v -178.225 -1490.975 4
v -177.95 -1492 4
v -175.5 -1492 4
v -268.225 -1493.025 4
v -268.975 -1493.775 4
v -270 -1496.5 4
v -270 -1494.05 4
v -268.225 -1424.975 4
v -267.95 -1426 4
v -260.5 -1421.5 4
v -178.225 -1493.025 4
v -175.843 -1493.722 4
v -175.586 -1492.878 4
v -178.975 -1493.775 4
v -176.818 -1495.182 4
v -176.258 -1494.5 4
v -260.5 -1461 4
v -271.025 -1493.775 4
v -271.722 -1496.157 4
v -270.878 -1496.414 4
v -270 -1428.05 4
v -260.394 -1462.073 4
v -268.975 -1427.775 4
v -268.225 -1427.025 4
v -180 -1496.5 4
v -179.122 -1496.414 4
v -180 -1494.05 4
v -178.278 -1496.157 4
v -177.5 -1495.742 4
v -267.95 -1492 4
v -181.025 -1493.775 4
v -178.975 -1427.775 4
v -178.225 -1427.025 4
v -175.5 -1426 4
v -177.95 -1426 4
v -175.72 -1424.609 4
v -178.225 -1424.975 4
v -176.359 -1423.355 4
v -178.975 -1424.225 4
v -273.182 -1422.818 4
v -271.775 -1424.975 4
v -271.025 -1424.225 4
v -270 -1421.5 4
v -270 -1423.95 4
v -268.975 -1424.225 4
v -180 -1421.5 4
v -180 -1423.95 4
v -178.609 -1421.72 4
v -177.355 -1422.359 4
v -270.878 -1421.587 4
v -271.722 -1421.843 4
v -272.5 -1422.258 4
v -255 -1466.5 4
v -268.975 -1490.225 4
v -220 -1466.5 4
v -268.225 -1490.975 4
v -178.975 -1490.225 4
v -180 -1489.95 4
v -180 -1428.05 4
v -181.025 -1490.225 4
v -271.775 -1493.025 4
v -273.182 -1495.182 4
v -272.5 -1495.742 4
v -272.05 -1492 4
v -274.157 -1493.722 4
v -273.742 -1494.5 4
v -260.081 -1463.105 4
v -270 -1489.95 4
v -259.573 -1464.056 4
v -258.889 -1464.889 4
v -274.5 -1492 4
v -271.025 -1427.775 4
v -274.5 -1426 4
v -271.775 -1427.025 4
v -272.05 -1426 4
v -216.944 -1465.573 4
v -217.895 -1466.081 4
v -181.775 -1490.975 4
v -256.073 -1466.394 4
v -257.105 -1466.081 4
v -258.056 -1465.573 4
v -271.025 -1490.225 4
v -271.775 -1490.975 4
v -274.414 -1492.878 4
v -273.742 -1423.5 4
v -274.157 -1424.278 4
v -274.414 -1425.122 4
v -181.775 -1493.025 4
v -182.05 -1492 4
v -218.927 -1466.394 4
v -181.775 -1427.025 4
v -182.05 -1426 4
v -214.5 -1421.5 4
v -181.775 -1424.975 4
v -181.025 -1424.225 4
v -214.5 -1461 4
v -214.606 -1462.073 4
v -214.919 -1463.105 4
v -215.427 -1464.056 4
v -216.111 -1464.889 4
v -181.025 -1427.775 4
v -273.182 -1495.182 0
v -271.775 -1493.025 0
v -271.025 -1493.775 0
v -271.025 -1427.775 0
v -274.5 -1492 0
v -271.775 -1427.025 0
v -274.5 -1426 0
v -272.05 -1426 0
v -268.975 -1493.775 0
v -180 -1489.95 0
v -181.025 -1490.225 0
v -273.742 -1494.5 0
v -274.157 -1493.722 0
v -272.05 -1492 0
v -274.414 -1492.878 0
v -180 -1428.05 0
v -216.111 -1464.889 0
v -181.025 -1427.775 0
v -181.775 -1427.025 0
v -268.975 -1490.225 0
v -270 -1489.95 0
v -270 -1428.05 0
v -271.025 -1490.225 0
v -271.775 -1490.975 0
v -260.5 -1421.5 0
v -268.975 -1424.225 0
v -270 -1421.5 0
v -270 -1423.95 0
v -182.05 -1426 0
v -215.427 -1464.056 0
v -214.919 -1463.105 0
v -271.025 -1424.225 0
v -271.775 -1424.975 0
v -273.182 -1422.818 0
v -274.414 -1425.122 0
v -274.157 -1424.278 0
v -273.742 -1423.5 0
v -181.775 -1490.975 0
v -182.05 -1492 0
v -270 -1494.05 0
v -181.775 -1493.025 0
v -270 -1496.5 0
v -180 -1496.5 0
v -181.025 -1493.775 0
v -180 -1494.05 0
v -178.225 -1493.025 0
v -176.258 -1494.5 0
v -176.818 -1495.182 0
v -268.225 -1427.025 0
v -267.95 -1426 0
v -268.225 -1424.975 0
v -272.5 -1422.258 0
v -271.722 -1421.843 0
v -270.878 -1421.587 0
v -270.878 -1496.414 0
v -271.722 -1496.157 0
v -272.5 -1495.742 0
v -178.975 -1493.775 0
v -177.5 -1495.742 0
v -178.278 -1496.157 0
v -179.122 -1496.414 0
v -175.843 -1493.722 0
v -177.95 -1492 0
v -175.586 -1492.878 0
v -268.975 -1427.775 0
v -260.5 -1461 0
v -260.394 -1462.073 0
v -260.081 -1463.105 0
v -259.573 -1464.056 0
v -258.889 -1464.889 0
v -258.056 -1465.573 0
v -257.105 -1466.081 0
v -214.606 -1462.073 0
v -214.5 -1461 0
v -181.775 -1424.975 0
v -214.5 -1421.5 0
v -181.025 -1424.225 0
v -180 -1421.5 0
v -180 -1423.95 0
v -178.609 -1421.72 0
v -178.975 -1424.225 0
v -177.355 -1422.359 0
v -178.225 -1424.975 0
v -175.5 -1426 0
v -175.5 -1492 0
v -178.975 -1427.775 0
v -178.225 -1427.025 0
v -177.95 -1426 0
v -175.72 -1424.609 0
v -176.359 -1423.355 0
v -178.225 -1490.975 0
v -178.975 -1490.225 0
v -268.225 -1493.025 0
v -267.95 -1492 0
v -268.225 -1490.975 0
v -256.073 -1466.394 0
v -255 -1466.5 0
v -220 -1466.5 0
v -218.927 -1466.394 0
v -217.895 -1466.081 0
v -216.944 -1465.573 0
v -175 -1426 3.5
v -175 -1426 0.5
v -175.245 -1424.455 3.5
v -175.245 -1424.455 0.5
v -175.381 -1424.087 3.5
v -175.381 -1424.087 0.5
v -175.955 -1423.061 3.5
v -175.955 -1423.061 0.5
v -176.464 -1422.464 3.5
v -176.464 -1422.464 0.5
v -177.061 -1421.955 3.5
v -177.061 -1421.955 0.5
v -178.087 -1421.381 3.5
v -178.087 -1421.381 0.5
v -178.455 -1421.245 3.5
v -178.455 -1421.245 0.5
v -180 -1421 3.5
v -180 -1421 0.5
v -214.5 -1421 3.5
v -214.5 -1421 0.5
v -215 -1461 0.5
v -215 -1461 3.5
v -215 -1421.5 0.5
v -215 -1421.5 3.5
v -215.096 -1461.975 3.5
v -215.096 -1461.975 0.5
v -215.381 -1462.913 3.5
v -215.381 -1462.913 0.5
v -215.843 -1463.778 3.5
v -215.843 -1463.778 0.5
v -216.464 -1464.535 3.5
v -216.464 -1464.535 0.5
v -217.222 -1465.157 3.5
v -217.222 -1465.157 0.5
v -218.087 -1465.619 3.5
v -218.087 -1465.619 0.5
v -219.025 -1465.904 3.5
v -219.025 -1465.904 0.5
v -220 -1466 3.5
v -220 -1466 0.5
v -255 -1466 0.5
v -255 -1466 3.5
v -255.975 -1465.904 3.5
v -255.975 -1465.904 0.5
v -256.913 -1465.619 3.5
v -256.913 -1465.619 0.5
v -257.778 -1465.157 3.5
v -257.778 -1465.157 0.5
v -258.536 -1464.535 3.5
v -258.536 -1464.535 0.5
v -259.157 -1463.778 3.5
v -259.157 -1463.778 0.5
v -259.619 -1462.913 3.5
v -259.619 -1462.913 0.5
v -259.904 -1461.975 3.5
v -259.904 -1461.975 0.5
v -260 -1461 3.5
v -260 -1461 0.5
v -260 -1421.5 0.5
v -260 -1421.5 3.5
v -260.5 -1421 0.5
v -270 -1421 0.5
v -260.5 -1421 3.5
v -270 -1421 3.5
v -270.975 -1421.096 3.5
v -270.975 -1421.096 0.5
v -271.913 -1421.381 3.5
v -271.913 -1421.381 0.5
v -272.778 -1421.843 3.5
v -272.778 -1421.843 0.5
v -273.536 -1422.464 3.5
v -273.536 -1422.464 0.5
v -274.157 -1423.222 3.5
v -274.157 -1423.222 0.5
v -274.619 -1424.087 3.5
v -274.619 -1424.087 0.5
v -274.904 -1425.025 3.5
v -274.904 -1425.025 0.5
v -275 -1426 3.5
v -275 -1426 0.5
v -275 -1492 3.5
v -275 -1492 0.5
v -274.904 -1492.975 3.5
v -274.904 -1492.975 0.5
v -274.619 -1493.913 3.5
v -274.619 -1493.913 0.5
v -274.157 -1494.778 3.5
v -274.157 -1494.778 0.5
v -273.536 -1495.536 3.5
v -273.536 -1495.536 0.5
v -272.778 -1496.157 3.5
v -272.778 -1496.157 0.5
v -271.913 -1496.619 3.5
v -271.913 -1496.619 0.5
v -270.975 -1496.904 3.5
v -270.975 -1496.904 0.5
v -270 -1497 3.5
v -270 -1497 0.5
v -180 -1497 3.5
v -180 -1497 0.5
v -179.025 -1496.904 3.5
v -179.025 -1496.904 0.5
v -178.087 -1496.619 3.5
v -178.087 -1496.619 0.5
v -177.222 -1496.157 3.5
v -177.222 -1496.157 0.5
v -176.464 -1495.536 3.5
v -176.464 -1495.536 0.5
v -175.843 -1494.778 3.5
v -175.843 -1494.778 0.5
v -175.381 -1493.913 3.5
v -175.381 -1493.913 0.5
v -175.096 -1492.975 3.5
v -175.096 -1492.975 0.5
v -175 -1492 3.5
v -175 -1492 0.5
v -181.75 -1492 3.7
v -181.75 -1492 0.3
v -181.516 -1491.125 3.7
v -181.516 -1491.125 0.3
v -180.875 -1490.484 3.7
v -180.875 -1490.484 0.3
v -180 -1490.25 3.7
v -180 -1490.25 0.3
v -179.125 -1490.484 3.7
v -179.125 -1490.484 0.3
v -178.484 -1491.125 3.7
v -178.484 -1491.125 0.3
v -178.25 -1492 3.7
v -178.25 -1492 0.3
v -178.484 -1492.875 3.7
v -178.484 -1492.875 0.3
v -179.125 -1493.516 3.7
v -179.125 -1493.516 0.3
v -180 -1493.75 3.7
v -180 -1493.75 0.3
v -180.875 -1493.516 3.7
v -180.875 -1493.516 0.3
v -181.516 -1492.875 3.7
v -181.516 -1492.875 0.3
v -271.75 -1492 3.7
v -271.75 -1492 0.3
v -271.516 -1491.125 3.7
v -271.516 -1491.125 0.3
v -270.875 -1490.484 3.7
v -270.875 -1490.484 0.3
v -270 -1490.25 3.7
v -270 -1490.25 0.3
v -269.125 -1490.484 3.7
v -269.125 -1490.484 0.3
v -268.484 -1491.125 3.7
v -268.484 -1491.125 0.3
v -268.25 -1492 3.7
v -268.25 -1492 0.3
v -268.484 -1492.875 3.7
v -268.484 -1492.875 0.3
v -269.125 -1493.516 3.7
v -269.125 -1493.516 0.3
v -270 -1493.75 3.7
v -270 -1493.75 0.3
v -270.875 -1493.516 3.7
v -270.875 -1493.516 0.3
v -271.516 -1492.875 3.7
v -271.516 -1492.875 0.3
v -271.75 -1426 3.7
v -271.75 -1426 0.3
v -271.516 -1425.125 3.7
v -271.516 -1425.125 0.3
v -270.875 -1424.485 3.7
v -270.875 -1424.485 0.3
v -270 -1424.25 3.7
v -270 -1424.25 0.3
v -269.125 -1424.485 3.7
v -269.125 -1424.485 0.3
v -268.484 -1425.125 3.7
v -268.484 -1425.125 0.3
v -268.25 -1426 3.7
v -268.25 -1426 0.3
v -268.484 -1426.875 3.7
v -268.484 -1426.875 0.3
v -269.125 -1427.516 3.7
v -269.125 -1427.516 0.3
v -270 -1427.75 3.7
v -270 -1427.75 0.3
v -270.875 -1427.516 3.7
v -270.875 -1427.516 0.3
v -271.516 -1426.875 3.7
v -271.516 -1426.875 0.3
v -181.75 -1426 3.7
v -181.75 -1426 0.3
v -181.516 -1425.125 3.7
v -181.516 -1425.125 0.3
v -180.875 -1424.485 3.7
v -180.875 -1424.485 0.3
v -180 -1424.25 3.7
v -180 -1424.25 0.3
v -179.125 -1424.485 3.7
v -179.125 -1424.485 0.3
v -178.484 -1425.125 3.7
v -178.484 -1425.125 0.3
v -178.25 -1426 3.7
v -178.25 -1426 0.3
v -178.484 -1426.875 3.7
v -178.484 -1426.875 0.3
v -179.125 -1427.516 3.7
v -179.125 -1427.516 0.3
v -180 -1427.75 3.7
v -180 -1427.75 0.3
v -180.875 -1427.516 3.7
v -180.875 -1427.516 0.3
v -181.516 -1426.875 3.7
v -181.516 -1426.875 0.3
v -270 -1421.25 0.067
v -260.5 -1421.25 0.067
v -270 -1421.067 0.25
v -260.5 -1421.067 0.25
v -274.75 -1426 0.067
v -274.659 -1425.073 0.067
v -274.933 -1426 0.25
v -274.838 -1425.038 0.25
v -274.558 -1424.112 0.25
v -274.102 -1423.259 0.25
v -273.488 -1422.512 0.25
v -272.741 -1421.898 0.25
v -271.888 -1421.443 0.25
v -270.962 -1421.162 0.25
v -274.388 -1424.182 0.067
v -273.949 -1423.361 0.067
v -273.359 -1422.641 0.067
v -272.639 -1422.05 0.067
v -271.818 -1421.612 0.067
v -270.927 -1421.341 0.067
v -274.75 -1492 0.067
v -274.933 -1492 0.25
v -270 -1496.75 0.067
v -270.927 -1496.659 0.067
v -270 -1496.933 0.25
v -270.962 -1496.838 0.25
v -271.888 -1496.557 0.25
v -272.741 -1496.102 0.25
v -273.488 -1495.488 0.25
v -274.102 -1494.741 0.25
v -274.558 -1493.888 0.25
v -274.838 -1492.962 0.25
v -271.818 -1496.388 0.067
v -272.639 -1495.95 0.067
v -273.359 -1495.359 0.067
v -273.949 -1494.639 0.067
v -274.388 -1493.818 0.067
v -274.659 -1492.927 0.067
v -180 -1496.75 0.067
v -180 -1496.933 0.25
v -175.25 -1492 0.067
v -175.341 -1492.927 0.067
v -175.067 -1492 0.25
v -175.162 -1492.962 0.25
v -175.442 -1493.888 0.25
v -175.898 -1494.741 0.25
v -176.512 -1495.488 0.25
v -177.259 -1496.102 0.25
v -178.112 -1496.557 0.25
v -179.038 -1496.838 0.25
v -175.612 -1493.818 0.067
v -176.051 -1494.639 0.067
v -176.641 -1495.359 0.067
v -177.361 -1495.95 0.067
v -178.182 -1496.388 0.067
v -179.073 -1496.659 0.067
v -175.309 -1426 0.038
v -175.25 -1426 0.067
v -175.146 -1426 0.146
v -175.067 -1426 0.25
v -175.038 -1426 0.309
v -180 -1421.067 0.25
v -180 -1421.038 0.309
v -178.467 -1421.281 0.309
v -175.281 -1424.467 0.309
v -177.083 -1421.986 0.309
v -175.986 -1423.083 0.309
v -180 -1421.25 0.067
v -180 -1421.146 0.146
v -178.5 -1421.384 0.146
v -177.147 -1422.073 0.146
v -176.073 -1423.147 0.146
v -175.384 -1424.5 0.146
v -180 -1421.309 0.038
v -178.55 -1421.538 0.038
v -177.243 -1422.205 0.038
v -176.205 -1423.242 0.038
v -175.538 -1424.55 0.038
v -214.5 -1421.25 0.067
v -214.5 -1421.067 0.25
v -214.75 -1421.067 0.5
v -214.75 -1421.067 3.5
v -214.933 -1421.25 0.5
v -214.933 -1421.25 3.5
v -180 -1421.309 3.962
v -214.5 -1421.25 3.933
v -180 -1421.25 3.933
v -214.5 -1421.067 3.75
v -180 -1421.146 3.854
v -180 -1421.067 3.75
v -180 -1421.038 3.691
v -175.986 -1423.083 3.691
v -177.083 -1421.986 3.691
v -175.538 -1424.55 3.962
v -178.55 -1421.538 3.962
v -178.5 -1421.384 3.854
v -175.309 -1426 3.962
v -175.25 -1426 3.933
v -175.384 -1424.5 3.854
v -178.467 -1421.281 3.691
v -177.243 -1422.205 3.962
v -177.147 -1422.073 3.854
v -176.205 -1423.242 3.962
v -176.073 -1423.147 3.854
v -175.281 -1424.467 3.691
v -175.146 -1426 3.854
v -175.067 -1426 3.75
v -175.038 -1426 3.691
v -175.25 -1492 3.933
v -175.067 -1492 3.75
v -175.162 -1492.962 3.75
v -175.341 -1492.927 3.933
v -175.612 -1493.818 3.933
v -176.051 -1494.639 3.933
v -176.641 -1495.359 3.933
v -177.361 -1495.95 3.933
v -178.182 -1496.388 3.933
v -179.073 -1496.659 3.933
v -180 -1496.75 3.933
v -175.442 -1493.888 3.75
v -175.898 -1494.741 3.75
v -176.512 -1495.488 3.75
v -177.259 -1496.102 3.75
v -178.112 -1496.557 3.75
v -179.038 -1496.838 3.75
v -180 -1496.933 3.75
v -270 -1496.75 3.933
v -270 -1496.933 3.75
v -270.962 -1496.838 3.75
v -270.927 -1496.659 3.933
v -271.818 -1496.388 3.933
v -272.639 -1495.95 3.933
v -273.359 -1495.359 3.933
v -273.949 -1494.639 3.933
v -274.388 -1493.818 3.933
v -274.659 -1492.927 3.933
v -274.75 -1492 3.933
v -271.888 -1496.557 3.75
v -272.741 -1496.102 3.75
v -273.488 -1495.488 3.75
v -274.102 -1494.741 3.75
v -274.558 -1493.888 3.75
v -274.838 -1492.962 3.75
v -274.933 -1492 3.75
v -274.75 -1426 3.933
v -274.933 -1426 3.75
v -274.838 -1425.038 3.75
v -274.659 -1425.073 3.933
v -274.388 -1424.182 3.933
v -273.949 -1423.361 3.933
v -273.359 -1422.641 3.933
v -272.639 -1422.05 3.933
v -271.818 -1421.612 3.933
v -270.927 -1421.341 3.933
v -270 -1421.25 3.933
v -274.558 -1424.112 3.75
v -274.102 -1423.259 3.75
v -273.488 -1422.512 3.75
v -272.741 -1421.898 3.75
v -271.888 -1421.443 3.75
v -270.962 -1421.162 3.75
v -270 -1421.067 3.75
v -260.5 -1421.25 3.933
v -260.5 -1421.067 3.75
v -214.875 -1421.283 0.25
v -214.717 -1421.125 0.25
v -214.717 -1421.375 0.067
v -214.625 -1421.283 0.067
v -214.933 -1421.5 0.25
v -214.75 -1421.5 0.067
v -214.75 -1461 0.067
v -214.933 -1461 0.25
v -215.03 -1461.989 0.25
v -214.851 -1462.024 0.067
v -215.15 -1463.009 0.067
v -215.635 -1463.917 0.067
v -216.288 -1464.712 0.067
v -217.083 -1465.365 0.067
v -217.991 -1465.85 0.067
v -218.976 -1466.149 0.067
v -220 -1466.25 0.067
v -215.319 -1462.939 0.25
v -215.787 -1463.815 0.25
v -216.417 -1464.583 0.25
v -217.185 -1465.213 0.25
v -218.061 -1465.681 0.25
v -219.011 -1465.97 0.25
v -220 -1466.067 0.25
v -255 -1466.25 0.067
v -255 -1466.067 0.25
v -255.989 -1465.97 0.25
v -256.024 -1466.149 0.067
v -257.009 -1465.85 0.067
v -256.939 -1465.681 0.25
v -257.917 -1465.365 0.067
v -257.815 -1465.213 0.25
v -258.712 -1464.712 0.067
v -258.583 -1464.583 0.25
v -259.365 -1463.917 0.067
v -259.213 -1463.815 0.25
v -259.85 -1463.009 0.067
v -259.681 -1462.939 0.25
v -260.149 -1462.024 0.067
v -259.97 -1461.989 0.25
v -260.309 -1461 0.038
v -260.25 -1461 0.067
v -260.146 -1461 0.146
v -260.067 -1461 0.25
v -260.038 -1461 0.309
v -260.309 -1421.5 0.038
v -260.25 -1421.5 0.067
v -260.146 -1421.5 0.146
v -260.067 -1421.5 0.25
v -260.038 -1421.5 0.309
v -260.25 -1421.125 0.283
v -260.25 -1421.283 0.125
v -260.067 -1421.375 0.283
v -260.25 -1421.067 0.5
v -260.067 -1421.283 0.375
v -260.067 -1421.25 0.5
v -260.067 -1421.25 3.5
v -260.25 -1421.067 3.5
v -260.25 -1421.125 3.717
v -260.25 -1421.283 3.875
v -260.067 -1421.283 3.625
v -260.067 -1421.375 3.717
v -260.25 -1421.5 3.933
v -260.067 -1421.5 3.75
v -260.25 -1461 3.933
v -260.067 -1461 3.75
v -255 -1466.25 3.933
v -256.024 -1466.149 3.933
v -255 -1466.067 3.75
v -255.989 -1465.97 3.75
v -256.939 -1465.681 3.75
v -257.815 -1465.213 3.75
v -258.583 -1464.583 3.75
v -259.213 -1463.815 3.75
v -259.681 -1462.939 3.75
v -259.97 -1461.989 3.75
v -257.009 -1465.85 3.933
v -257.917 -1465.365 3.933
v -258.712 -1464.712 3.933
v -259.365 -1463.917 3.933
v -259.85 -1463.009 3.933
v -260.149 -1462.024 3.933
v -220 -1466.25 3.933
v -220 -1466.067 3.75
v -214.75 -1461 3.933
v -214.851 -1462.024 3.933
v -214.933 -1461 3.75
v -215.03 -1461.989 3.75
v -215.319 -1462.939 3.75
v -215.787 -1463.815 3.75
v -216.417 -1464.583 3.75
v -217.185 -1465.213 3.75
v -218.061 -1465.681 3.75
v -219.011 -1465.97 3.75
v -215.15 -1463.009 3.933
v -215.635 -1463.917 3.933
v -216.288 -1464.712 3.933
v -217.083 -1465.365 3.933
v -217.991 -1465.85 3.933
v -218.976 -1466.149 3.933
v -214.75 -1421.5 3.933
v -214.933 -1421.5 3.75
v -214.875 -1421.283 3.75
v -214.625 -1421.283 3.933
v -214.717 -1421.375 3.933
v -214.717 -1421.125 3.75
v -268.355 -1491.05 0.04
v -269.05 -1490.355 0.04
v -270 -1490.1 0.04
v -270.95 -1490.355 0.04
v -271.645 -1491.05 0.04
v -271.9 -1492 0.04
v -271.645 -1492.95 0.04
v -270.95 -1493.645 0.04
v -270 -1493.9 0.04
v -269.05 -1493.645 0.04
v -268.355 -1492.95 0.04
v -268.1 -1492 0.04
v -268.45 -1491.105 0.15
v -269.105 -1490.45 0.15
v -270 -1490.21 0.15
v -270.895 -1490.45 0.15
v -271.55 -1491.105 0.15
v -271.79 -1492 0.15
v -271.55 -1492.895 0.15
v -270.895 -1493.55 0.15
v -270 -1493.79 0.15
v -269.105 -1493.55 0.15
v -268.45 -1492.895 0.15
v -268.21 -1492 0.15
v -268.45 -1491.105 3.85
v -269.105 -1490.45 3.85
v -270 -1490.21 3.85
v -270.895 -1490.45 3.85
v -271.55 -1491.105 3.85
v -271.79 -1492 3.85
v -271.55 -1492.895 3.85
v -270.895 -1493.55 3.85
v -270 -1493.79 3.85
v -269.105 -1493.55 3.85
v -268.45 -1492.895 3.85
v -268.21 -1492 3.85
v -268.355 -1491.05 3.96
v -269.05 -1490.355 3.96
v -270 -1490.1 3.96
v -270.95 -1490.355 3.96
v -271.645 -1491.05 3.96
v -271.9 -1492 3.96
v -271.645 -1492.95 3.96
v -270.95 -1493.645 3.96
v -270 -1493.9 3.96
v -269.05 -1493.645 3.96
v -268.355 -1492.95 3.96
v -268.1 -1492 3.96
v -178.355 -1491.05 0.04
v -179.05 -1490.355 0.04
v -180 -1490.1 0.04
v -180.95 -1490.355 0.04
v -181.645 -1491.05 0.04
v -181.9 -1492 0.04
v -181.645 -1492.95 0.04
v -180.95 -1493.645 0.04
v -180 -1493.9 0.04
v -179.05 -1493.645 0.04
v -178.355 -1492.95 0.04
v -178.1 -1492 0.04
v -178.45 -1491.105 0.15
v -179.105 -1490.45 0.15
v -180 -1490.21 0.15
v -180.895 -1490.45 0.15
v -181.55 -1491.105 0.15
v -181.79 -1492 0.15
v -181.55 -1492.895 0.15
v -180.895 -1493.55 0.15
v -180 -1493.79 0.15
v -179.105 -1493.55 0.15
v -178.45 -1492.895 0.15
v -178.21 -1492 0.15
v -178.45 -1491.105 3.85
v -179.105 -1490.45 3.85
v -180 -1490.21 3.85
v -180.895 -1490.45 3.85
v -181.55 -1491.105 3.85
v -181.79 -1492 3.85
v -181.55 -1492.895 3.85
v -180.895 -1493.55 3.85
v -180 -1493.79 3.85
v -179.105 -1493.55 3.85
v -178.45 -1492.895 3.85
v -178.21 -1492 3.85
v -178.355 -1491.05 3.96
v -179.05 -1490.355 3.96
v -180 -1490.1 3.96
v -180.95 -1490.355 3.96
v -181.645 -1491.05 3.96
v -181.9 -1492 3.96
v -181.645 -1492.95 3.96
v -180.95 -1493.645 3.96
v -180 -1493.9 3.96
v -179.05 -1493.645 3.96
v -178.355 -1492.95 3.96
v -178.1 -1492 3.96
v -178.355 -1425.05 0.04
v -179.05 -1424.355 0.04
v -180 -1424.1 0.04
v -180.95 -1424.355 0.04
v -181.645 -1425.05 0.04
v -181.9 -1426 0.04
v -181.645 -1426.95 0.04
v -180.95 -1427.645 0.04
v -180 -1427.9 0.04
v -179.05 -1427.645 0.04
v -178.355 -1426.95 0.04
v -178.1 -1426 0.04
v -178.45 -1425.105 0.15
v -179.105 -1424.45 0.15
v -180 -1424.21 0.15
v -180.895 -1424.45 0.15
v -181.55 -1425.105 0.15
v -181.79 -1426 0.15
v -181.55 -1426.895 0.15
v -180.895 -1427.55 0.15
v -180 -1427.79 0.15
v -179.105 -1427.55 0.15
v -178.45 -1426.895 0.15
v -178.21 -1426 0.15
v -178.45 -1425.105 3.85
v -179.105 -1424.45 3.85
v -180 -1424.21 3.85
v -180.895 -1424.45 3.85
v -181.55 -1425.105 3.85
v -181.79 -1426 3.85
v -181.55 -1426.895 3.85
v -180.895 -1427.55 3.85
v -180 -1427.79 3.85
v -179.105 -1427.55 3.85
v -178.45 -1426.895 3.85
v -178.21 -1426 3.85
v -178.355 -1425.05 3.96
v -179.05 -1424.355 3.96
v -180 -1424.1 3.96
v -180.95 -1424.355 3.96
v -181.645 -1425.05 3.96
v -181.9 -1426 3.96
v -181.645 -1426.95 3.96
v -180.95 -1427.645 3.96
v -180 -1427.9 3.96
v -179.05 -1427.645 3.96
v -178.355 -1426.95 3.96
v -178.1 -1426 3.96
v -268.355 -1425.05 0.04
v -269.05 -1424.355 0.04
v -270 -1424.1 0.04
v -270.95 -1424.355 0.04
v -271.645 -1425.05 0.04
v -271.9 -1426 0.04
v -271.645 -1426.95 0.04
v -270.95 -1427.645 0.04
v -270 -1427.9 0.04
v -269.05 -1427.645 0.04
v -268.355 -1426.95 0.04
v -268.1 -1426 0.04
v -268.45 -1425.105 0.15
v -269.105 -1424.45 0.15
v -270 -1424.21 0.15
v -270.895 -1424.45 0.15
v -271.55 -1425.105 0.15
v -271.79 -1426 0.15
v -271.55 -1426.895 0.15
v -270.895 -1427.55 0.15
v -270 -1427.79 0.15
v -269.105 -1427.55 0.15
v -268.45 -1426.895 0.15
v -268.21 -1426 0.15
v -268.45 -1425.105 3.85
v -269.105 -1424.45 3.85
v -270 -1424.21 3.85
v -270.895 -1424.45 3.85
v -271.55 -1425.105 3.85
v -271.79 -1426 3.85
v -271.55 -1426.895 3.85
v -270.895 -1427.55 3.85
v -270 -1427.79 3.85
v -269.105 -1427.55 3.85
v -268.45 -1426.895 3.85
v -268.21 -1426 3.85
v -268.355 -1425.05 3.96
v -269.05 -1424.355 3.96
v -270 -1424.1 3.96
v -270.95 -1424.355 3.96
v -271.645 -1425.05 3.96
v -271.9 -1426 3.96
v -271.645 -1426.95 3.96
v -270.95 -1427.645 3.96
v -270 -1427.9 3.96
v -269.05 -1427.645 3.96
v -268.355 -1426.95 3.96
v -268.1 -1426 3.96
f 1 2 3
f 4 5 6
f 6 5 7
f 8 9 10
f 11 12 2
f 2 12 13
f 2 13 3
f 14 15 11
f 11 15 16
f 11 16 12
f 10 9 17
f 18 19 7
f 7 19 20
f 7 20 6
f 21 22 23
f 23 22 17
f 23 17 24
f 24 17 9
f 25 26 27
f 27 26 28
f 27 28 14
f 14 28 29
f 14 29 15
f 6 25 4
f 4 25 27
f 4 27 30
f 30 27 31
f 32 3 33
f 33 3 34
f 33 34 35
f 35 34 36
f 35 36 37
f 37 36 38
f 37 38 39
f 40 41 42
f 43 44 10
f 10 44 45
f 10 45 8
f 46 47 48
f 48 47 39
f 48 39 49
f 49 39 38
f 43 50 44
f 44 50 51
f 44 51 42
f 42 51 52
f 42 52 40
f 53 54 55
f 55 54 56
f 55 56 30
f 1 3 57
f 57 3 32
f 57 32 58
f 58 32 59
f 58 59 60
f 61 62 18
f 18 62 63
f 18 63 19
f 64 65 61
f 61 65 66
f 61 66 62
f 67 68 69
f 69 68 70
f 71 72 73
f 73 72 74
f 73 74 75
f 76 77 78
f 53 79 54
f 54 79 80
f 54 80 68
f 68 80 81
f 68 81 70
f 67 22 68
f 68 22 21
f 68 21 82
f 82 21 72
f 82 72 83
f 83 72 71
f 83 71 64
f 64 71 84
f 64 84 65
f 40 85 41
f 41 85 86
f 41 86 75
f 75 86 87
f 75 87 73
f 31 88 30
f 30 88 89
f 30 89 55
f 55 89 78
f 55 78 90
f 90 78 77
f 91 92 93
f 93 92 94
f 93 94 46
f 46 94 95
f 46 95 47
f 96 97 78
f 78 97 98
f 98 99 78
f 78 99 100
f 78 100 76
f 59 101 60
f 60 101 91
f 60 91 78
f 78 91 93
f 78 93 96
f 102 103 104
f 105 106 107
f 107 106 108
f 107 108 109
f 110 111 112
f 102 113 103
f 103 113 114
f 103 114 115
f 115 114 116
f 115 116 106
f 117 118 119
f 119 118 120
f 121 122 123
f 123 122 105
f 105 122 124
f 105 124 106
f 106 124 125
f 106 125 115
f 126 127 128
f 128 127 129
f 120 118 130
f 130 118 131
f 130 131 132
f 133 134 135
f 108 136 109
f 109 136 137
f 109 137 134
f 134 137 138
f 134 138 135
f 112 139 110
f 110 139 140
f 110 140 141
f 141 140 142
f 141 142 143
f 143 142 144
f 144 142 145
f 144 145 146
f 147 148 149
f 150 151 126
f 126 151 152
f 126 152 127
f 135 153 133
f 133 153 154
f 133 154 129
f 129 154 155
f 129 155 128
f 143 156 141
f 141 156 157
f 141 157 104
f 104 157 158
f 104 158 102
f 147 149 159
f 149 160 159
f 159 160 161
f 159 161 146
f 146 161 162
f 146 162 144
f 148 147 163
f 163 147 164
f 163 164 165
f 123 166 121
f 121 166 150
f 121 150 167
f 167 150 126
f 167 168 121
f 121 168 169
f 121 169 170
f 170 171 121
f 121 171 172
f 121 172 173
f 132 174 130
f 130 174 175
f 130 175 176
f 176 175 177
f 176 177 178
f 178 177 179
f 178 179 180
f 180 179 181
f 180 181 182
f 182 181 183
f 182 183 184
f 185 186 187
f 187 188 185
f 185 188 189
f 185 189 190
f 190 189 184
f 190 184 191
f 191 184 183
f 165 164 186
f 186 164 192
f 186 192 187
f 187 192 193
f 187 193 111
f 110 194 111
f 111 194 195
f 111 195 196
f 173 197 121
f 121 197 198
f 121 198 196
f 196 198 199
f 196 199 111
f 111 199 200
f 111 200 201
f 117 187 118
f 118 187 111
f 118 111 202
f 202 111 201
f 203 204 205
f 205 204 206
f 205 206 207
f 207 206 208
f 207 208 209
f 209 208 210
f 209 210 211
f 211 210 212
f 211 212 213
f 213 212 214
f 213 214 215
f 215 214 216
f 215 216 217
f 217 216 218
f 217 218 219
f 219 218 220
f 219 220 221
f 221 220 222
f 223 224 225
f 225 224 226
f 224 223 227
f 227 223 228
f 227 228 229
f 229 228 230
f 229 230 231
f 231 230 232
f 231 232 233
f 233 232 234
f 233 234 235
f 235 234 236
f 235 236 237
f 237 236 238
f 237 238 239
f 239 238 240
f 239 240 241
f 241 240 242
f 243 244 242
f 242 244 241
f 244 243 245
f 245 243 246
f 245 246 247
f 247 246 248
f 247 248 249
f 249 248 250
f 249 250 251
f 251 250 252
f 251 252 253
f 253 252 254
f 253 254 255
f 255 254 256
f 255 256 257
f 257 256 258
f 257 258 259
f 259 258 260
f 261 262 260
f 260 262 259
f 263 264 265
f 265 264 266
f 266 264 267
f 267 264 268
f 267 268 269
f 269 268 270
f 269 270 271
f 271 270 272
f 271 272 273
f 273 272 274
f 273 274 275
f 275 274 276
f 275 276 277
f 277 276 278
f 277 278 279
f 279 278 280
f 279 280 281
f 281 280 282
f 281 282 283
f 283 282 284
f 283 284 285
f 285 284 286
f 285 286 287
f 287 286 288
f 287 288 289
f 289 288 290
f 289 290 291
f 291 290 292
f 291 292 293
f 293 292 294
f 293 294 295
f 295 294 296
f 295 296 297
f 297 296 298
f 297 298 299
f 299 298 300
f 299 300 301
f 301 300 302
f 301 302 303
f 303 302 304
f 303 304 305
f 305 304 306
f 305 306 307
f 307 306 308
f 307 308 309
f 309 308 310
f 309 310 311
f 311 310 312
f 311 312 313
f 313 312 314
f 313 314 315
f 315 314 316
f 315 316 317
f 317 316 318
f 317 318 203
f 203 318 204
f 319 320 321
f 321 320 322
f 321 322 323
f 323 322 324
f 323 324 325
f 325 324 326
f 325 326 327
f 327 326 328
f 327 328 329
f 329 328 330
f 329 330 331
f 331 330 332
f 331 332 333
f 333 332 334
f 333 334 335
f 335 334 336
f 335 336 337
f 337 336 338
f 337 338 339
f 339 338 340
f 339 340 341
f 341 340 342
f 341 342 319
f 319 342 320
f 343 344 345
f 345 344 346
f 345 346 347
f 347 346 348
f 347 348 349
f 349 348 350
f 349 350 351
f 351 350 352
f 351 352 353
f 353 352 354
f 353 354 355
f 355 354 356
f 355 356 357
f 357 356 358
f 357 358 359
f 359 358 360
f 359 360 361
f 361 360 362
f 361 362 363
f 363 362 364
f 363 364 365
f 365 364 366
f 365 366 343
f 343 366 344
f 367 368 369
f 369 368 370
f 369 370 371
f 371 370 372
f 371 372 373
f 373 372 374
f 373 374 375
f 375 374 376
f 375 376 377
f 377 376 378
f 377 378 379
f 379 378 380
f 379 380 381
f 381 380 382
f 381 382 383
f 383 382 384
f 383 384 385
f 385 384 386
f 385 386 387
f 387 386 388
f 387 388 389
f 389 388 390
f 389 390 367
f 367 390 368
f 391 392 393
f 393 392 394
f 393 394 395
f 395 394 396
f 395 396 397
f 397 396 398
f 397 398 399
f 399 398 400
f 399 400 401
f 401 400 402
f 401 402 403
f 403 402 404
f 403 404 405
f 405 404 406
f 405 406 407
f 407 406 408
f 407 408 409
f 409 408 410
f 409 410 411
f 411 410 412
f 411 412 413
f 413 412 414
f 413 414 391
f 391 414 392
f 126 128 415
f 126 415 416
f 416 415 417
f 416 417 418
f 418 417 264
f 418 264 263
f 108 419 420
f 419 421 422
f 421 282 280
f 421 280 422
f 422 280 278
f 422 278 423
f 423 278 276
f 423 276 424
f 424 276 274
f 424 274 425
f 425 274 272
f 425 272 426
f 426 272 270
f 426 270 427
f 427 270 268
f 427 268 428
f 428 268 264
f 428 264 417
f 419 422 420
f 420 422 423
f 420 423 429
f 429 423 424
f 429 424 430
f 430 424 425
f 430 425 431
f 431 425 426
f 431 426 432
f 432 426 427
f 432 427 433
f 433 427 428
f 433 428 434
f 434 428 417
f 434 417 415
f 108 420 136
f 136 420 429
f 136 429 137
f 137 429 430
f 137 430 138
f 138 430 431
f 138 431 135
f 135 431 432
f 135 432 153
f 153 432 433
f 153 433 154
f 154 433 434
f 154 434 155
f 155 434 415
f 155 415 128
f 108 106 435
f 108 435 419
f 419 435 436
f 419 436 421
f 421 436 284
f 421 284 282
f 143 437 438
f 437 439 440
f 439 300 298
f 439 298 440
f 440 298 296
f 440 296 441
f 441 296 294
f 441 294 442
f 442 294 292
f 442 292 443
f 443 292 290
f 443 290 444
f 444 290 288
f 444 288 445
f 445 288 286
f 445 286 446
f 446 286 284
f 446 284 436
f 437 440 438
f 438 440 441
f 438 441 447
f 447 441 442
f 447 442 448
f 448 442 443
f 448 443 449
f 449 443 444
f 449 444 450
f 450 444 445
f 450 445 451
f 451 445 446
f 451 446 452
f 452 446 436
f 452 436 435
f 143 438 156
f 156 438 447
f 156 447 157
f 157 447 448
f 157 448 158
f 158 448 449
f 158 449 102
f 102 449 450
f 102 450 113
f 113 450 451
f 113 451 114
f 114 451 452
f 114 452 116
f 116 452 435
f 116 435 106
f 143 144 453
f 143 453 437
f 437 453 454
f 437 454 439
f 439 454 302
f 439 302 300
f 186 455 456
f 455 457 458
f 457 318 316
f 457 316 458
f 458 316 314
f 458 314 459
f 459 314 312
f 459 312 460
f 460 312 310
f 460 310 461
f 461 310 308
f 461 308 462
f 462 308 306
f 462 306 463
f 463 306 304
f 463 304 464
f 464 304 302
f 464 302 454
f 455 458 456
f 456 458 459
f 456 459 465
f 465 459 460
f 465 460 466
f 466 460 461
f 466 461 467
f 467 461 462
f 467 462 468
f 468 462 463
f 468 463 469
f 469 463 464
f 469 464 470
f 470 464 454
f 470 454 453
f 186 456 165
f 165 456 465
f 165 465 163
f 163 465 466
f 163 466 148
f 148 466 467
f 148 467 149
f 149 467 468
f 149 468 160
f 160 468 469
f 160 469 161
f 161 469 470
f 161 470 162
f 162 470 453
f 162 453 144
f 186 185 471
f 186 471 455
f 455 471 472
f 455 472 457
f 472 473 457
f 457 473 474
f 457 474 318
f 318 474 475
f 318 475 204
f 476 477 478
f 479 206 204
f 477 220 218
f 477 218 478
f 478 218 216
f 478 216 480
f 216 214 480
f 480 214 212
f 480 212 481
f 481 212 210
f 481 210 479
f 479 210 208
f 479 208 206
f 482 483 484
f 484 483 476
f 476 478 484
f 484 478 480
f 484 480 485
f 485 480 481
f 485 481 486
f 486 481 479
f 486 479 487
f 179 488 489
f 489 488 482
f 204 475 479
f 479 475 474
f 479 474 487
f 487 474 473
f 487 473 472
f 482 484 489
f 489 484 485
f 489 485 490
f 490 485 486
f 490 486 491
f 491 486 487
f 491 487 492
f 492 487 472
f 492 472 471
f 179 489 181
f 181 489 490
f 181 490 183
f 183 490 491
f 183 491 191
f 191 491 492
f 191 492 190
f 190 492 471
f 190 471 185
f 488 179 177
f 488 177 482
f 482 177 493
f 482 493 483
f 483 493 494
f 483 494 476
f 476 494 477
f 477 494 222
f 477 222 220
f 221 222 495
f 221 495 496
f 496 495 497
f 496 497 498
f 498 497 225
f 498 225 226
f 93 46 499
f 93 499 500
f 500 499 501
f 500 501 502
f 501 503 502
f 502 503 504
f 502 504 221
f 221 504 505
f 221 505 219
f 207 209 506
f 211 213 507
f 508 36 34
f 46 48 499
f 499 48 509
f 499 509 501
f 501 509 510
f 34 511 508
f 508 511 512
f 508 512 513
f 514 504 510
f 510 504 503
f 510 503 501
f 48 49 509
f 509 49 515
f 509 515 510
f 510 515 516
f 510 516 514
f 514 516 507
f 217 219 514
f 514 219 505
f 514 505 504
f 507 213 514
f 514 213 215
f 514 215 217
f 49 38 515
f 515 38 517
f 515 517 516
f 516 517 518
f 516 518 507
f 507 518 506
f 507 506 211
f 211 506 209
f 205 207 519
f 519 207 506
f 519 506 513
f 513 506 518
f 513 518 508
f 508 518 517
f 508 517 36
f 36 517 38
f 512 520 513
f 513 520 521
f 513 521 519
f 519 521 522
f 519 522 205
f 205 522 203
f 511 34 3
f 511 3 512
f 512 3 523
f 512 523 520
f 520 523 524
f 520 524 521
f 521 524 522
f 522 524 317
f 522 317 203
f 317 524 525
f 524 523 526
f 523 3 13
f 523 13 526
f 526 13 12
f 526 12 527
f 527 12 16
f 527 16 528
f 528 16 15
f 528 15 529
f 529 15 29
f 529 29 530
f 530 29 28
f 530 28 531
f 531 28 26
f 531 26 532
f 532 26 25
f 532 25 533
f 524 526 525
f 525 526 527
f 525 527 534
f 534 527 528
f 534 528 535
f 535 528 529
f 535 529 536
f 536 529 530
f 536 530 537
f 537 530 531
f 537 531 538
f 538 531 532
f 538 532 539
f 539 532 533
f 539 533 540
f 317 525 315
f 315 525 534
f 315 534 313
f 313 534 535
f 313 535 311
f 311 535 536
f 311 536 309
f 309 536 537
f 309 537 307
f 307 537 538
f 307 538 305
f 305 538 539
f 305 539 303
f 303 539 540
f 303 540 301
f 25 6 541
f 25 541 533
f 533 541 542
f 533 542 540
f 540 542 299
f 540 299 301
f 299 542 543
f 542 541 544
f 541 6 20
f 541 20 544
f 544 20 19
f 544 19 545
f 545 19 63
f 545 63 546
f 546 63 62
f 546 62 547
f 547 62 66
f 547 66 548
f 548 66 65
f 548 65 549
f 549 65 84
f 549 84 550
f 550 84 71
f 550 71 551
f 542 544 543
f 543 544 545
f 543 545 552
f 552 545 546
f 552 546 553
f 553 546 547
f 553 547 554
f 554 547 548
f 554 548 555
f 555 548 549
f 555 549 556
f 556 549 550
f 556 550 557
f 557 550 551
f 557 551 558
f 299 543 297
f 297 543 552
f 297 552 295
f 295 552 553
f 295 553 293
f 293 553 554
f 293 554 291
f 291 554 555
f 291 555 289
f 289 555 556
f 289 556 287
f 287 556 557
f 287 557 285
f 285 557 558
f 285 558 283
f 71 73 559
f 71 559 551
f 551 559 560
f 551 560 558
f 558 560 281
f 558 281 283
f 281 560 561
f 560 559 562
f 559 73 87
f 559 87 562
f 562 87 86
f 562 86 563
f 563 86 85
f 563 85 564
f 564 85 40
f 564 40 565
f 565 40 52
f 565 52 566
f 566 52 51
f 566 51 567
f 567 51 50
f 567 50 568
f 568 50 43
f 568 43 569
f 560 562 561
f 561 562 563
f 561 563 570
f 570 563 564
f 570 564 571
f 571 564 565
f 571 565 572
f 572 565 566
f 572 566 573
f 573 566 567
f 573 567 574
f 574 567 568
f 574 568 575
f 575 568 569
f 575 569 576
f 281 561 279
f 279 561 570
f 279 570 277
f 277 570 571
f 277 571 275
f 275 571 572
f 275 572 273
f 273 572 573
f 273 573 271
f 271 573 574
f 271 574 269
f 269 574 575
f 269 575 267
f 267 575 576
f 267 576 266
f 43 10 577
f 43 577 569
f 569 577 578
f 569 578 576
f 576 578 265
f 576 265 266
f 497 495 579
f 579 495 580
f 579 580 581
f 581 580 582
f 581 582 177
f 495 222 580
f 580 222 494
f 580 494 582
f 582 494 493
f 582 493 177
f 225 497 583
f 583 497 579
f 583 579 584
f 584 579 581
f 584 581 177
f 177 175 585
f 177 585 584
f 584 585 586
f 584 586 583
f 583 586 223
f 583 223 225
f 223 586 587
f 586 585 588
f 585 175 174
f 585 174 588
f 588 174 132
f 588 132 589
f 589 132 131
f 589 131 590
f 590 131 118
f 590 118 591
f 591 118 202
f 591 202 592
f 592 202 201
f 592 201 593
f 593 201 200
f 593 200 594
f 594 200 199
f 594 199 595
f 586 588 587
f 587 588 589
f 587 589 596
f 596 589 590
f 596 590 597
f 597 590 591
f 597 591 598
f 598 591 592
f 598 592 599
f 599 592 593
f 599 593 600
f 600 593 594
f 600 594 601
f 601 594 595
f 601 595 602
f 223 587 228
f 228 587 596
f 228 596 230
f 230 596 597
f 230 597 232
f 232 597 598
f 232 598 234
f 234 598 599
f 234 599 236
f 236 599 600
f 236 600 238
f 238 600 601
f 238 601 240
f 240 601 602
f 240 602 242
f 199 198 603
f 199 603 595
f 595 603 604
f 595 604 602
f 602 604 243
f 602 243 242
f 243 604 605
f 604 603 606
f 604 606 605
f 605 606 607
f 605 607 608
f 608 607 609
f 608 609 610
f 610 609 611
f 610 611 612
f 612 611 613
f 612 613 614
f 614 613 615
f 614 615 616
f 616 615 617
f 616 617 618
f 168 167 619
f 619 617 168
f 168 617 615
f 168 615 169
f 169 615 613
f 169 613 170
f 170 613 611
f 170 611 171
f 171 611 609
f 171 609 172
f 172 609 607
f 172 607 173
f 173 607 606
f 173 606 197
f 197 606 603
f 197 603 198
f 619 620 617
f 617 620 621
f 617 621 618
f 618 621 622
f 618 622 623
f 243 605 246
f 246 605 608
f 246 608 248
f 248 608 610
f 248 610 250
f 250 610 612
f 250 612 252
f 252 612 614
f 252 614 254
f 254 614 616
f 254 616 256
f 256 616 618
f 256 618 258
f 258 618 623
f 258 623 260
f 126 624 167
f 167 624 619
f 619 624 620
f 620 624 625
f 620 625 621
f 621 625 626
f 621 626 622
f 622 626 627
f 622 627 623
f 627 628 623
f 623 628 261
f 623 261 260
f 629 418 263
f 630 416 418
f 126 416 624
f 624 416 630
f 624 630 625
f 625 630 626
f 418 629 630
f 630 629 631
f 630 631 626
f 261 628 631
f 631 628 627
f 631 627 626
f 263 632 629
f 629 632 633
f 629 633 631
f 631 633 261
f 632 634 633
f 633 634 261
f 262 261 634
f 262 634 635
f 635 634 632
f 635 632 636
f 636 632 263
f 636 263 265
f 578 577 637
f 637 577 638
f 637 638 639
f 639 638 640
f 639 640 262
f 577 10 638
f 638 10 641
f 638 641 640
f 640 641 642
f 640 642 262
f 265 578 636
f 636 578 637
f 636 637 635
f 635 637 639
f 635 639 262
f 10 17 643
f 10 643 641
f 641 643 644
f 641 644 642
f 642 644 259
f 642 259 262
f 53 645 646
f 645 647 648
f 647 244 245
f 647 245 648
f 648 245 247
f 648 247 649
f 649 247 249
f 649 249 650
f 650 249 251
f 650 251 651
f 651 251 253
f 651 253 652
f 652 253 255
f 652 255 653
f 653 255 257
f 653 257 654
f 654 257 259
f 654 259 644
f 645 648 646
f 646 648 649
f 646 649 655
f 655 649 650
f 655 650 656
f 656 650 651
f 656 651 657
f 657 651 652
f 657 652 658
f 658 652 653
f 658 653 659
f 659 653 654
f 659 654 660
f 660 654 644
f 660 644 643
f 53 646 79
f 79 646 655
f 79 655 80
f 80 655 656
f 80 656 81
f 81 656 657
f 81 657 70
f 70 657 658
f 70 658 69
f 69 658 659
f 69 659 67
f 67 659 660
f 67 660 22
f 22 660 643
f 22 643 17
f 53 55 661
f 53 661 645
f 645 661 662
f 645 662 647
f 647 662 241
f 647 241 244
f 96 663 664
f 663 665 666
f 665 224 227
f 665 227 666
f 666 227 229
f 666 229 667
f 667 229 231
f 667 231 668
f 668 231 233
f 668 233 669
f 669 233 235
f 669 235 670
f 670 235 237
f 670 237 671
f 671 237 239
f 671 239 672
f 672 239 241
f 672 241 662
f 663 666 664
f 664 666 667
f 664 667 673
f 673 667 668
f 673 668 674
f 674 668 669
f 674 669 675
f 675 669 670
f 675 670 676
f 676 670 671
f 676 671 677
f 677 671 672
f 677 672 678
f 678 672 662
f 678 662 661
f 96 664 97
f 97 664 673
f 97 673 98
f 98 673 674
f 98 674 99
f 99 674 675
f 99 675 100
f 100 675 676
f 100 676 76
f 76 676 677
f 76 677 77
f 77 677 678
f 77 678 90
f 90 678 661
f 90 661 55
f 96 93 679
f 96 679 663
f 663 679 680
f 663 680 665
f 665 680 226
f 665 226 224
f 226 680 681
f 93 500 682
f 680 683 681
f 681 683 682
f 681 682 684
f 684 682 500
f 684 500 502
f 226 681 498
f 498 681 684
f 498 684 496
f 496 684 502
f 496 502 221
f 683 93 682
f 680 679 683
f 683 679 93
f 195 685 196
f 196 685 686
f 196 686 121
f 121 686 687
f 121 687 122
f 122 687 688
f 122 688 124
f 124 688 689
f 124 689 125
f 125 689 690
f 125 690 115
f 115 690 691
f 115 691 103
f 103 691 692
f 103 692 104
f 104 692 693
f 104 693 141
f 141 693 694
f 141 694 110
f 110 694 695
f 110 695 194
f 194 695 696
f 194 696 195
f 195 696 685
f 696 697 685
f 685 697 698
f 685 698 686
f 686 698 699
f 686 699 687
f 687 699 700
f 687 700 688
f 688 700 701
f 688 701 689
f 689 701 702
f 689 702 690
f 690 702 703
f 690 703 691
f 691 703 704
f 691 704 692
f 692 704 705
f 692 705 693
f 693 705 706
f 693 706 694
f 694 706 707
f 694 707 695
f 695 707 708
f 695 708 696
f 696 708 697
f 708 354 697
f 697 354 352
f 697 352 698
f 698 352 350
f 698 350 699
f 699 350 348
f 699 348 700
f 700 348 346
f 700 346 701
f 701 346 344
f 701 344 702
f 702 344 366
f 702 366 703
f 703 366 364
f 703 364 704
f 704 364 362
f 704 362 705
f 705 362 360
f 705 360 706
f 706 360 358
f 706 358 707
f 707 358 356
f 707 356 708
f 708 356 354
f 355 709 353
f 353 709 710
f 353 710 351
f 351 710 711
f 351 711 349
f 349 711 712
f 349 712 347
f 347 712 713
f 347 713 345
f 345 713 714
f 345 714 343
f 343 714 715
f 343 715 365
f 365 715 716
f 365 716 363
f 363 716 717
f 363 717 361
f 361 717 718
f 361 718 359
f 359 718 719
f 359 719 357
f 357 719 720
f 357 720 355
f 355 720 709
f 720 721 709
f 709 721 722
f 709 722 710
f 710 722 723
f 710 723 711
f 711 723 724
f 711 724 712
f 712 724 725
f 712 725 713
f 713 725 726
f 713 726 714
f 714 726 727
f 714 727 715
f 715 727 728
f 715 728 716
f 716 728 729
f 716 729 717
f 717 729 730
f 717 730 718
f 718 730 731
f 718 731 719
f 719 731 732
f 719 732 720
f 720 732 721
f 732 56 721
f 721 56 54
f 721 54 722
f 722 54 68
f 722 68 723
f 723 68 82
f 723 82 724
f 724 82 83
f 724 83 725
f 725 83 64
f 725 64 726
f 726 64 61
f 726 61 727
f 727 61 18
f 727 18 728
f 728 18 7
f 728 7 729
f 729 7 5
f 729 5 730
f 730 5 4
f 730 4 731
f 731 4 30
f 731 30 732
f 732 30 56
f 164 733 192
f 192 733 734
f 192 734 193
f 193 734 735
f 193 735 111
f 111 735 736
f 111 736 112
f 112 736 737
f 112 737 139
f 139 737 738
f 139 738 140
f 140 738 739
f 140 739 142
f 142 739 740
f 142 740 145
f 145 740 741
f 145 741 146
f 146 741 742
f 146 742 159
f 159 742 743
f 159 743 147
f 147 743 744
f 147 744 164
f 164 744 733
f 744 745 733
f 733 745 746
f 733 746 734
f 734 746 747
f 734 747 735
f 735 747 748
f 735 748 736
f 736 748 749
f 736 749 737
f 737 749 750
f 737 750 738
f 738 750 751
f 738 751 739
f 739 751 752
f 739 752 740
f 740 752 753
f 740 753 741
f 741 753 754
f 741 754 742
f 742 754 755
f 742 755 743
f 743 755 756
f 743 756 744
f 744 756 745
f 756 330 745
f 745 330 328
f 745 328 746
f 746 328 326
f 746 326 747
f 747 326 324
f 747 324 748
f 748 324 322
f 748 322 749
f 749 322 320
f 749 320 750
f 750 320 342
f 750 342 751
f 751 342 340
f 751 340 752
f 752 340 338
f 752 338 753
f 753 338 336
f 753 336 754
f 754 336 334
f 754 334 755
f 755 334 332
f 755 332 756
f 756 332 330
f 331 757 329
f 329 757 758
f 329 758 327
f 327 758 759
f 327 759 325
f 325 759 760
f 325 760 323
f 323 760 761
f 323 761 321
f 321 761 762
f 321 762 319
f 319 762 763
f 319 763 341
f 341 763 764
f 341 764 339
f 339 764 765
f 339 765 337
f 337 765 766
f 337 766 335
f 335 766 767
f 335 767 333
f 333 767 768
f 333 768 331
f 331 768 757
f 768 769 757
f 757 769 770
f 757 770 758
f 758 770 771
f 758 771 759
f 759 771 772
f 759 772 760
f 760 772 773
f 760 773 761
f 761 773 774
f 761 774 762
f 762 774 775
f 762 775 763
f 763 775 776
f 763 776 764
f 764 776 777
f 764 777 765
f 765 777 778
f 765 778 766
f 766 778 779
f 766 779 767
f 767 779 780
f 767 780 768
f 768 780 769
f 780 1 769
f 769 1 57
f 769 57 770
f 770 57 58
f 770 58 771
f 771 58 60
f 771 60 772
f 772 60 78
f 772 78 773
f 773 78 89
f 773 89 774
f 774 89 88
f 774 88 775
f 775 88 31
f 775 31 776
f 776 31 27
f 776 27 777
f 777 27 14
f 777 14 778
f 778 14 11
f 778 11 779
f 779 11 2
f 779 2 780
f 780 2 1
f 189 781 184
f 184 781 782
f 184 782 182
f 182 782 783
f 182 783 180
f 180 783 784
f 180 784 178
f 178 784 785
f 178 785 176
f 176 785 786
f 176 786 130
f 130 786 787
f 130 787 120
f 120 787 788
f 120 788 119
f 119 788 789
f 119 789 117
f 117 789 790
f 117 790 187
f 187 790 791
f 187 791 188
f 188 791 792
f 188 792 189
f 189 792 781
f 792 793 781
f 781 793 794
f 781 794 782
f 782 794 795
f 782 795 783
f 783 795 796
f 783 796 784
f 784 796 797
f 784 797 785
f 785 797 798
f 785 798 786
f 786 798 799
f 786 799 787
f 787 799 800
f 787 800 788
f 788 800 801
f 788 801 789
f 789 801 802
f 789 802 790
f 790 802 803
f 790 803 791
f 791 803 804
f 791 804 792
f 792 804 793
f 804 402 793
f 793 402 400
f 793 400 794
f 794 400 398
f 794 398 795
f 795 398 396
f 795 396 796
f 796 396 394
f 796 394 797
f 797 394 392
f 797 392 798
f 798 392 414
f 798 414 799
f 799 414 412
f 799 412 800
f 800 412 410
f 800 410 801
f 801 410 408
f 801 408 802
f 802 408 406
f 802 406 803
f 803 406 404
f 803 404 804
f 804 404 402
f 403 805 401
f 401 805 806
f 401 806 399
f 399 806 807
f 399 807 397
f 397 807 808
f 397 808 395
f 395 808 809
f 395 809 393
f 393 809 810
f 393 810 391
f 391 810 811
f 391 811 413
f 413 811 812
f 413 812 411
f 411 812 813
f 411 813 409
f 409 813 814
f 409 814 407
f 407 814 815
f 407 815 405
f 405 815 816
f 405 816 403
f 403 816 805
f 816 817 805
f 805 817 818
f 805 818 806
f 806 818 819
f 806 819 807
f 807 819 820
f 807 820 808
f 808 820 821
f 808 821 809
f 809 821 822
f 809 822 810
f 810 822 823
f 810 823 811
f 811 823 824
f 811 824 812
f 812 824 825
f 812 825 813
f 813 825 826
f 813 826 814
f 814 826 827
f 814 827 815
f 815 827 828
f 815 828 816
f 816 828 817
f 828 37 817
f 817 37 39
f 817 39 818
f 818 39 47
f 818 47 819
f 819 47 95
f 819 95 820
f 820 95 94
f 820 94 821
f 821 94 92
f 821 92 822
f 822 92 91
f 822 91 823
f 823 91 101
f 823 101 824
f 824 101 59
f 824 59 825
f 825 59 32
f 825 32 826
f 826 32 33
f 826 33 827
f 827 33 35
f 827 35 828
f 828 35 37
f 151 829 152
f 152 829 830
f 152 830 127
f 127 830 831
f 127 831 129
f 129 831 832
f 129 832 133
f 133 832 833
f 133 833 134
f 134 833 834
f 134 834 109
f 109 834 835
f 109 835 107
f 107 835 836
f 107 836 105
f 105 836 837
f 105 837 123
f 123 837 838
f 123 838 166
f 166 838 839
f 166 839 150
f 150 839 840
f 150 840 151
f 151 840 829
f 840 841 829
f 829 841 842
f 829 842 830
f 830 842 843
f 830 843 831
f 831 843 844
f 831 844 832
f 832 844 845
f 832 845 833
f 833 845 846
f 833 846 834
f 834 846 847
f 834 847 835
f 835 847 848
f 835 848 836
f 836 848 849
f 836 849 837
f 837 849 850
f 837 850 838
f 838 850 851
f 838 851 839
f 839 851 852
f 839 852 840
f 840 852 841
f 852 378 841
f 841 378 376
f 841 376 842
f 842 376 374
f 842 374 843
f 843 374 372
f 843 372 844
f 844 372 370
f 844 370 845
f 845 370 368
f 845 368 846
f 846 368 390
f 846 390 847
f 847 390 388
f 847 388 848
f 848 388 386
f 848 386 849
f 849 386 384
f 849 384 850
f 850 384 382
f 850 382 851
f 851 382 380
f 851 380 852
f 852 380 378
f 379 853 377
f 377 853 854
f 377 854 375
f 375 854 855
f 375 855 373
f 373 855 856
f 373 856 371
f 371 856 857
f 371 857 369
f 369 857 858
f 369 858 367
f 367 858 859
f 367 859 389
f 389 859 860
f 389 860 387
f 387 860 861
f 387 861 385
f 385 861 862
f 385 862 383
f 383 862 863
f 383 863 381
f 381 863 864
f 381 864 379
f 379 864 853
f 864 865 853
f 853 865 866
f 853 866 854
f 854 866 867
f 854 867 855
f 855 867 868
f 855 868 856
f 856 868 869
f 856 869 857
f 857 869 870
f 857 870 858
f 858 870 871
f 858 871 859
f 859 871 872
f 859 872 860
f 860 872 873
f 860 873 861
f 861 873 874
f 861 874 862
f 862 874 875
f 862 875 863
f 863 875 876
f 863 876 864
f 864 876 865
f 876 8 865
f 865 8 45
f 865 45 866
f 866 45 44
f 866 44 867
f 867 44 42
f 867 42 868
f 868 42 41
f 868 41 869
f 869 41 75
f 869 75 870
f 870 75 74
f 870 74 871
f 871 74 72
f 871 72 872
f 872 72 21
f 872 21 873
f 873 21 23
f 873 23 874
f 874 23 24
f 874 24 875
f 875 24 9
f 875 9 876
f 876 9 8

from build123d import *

# Parameters (mm, degrees)
SKETCH2_R           = 1.75
BOSS_EXTRUDE1_DEPTH = 4
FILLET1_R           = 0.5
FILLET2_R           = 0.5
FILLET3_R           = 0.3


with BuildPart() as part:
    # Sketch2 → Boss-Extrude1 (new body)
    with BuildSketch(Plane.XY):
        with BuildLine():
            Line((-260, -1421), (-270, -1421))
            ThreePointArc((-270, -1421), (-273.535533906, -1422.464466094), (-275, -1426))
            Line((-275, -1426), (-275, -1492))
            ThreePointArc((-275, -1492), (-273.535533906, -1495.535533906), (-270, -1497))
            Line((-270, -1497), (-180, -1497))
            ThreePointArc((-180, -1497), (-176.464466094, -1495.535533906), (-175, -1492))
            Line((-175, -1492), (-175, -1426))
            ThreePointArc((-175, -1426), (-176.464466094, -1422.464466094), (-180, -1421))
            Line((-180, -1421), (-215, -1421))
            Line((-215, -1421), (-215, -1461))
            ThreePointArc((-215, -1461), (-216.464466094, -1464.535533906), (-220, -1466))
            Line((-220, -1466), (-255, -1466))
            ThreePointArc((-255, -1466), (-258.535533906, -1464.535533906), (-260, -1461))
            Line((-260, -1461), (-260, -1421))
        make_face()
        with Locations((-180, -1492)):
            Circle(SKETCH2_R, mode=Mode.SUBTRACT)
        with Locations((-270, -1492)):
            Circle(SKETCH2_R, mode=Mode.SUBTRACT)
        with Locations((-270, -1426)):
            Circle(SKETCH2_R, mode=Mode.SUBTRACT)
        with Locations((-180, -1426)):
            Circle(SKETCH2_R, mode=Mode.SUBTRACT)
    extrude(amount=BOSS_EXTRUDE1_DEPTH)

    # Fillet1
    fillet1_edges = [part.edges().sort_by_distance(p)[0] for p in [
        (-175, -1459, 0),
        (-176.464466094, -1495.535533906, 0),
        (-225, -1497, 0),
        (-273.535533906, -1495.535533906, 0),
        (-275, -1459, 0),
        (-273.535533906, -1422.464466094, 0),
        (-265, -1421, 0),
        (-197.5, -1421, 0),
        (-176.464466094, -1422.464466094, 0),
        (-215, -1421, 2),
        (-265, -1421, 4),
        (-273.535533906, -1422.464466094, 4),
        (-275, -1459, 4),
        (-273.535533906, -1495.535533906, 4),
        (-225, -1497, 4),
        (-176.464466094, -1422.464466094, 4),
        (-176.464466094, -1495.535533906, 4),
        (-175, -1459, 4),
        (-197.5, -1421, 4),
    ]]
    fillet(fillet1_edges, radius=FILLET1_R)

    # Fillet2
    # the kernel refuses this fillet: 0.5 mm, written as the material it takes off along each edge
    with BuildSketch(Plane(origin=(-214.5, -1421.5, 0.5), x_dir=(-1, 0, 0), z_dir=(0, 0, -1))) as fillet2_piece_1_section:
        Polygon((0, 0), (FILLET2_R, 0), (FILLET2_R, FILLET2_R), (0, FILLET2_R), align=None)
    fillet2_piece_1 = extrude(amount=FILLET2_R, mode=Mode.PRIVATE)
    fillet2_piece_1 = fillet2_piece_1 - Plane(origin=(-214.5, -1421.5, 0.5), x_dir=(0.7071067811865475, -0.7071067811865475, 0), z_dir=(0, 0, -1)) * Sphere(FILLET2_R, mode=Mode.PRIVATE)
    add(fillet2_piece_1, mode=Mode.SUBTRACT)
    with BuildSketch(Plane(origin=(-214.5, -1421.5, 3.5), x_dir=(-1, 0, 0), z_dir=(0, 0, 1))) as fillet2_piece_2_section:
        Polygon((0, 0), (FILLET2_R, 0), (FILLET2_R, -FILLET2_R), (0, -FILLET2_R), align=None)
    fillet2_piece_2 = extrude(amount=FILLET2_R, mode=Mode.PRIVATE)
    fillet2_piece_2 = fillet2_piece_2 - Plane(origin=(-214.5, -1421.5, 3.5), x_dir=(0.7071067811865475, -0.7071067811865475, 0), z_dir=(0, 0, 1)) * Sphere(FILLET2_R, mode=Mode.PRIVATE)
    add(fillet2_piece_2, mode=Mode.SUBTRACT)
    with BuildSketch(Plane(origin=(-260, -1461, 0), x_dir=(0, 0, 1), z_dir=(0, 1, 0)), Plane(origin=(-215, -1421.5, 4), x_dir=(1, 0, 0), z_dir=(0, -1, 0))) as fillet2_piece_3:
        with BuildLine():
            CenterArc((FILLET2_R, -FILLET2_R), FILLET2_R, 90, 90)
            Line((0, -FILLET2_R), (0, 0))
            Line((0, 0), (FILLET2_R, 0))
        make_face()
    extrude(amount=39.5, mode=Mode.SUBTRACT)
    with BuildSketch(Plane(origin=(-220, -1461, 4), x_dir=(1, 0, 0), z_dir=(0, 1, 0))) as fillet2_piece_4:
        with BuildLine():
            CenterArc((5 + FILLET2_R, FILLET2_R), FILLET2_R, 180, 90)
            Line((5, FILLET2_R), (5, 0))
            Line((5, 0), (5 + FILLET2_R, 0))
        make_face()
    revolve(axis=Axis((-220, -1461, 4), (0, 0, -1)), revolution_arc=90, mode=Mode.SUBTRACT)
    with BuildSketch(Plane(origin=(-255, -1461, 0), x_dir=(0, -1, 0), z_dir=(1, 0, 0))) as fillet2_piece_5:
        with BuildLine():
            CenterArc((5 + FILLET2_R, -FILLET2_R), FILLET2_R, 90, 90)
            Line((5, -FILLET2_R), (5, 0))
            Line((5, 0), (5 + FILLET2_R, 0))
        make_face()
    revolve(axis=Axis((-255, -1461, 0), (0, 0, -1)), revolution_arc=90, mode=Mode.SUBTRACT)
    with BuildSketch(Plane(origin=(-220, -1466, 0), x_dir=(0, -1, 0), z_dir=(-1, 0, 0))) as fillet2_piece_6:
        with BuildLine():
            CenterArc((FILLET2_R, FILLET2_R), FILLET2_R, 180, 90)
            Line((0, FILLET2_R), (0, 0))
            Line((0, 0), (FILLET2_R, 0))
        make_face()
    extrude(amount=35, mode=Mode.SUBTRACT)
    with BuildSketch(Plane(origin=(-220, -1461, 0), x_dir=(1, 0, 0), z_dir=(0, 1, 0))) as fillet2_piece_7:
        with BuildLine():
            CenterArc((5 + FILLET2_R, -FILLET2_R), FILLET2_R, 90, 90)
            Line((5, -FILLET2_R), (5, 0))
            Line((5, 0), (5 + FILLET2_R, 0))
        make_face()
    revolve(axis=Axis((-220, -1461, 0), (0, 0, -1)), revolution_arc=90, mode=Mode.SUBTRACT)
    with BuildSketch(Plane(origin=(-220, -1466, 4), x_dir=(0, -1, 0), z_dir=(-1, 0, 0))) as fillet2_piece_8:
        with BuildLine():
            CenterArc((FILLET2_R, -FILLET2_R), FILLET2_R, 90, 90)
            Line((0, -FILLET2_R), (0, 0))
            Line((0, 0), (FILLET2_R, 0))
        make_face()
    extrude(amount=35, mode=Mode.SUBTRACT)
    with BuildSketch(Plane(origin=(-255, -1461, 4), x_dir=(0, -1, 0), z_dir=(1, 0, 0))) as fillet2_piece_9:
        with BuildLine():
            CenterArc((5 + FILLET2_R, FILLET2_R), FILLET2_R, 180, 90)
            Line((5, FILLET2_R), (5, 0))
            Line((5, 0), (5 + FILLET2_R, 0))
        make_face()
    revolve(axis=Axis((-255, -1461, 4), (0, 0, -1)), revolution_arc=90, mode=Mode.SUBTRACT)
    with BuildSketch(Plane(origin=(-260, -1461, 4), x_dir=(0, 0, -1), z_dir=(0, 1, 0)), Plane(origin=(-215, -1421.5, 0), x_dir=(1, 0, 0), z_dir=(0, -1, 0))) as fillet2_piece_10:
        with BuildLine():
            CenterArc((FILLET2_R, FILLET2_R), FILLET2_R, 180, 90)
            Line((0, FILLET2_R), (0, 0))
            Line((0, 0), (FILLET2_R, 0))
        make_face()
    extrude(amount=39.5, mode=Mode.SUBTRACT)
    with BuildSketch(Plane(origin=(-260, -1421, 0.5), x_dir=(0, -1, 0), z_dir=(0, 0, 1))) as fillet2_piece_11:
        with BuildLine():
            CenterArc((FILLET2_R, -FILLET2_R), FILLET2_R, 90, 90)
            Line((0, -FILLET2_R), (0, 0))
            Line((0, 0), (FILLET2_R, 0))
        make_face()
    extrude(amount=3, mode=Mode.SUBTRACT)
    with BuildSketch(Plane(origin=(-260, -1421.5, 0.5), x_dir=(0, 1, 0), z_dir=(0, 0, 1))) as fillet2_piece_12:
        with BuildLine():
            CenterArc((0.5 - FILLET2_R, FILLET2_R), FILLET2_R, 270, 90)
            Line((0.5, FILLET2_R), (0.5, 0))
            Line((0.5, 0), (0.5 - FILLET2_R, 0))
        make_face()
    revolve(axis=Axis((-260, -1421.5, 0.5), (-1, 0, 0)), revolution_arc=90, mode=Mode.SUBTRACT)
    with BuildSketch(Plane(origin=(-260, -1421.5, 3.5), x_dir=(0, 1, 0), z_dir=(0, 0, -1))) as fillet2_piece_13:
        with BuildLine():
            CenterArc((0.5 - FILLET2_R, -FILLET2_R), FILLET2_R, 0, 90)
            Line((0.5, -FILLET2_R), (0.5, 0))
            Line((0.5, 0), (0.5 - FILLET2_R, 0))
        make_face()
    revolve(axis=Axis((-260, -1421.5, 3.5), (1, 0, 0)), revolution_arc=90, mode=Mode.SUBTRACT)

    # Fillet3
    fillet3_edges = [part.edges().sort_by_distance(p)[0] for p in [
        (-181.75, -1492, 0),
        (-181.75, -1492, 4),
        (-271.75, -1492, 0),
        (-271.75, -1492, 4),
        (-271.75, -1426, 0),
        (-271.75, -1426, 4),
        (-181.75, -1426, 0),
        (-181.75, -1426, 4),
    ]]
    fillet(fillet3_edges, radius=FILLET3_R)


solid = part.part
